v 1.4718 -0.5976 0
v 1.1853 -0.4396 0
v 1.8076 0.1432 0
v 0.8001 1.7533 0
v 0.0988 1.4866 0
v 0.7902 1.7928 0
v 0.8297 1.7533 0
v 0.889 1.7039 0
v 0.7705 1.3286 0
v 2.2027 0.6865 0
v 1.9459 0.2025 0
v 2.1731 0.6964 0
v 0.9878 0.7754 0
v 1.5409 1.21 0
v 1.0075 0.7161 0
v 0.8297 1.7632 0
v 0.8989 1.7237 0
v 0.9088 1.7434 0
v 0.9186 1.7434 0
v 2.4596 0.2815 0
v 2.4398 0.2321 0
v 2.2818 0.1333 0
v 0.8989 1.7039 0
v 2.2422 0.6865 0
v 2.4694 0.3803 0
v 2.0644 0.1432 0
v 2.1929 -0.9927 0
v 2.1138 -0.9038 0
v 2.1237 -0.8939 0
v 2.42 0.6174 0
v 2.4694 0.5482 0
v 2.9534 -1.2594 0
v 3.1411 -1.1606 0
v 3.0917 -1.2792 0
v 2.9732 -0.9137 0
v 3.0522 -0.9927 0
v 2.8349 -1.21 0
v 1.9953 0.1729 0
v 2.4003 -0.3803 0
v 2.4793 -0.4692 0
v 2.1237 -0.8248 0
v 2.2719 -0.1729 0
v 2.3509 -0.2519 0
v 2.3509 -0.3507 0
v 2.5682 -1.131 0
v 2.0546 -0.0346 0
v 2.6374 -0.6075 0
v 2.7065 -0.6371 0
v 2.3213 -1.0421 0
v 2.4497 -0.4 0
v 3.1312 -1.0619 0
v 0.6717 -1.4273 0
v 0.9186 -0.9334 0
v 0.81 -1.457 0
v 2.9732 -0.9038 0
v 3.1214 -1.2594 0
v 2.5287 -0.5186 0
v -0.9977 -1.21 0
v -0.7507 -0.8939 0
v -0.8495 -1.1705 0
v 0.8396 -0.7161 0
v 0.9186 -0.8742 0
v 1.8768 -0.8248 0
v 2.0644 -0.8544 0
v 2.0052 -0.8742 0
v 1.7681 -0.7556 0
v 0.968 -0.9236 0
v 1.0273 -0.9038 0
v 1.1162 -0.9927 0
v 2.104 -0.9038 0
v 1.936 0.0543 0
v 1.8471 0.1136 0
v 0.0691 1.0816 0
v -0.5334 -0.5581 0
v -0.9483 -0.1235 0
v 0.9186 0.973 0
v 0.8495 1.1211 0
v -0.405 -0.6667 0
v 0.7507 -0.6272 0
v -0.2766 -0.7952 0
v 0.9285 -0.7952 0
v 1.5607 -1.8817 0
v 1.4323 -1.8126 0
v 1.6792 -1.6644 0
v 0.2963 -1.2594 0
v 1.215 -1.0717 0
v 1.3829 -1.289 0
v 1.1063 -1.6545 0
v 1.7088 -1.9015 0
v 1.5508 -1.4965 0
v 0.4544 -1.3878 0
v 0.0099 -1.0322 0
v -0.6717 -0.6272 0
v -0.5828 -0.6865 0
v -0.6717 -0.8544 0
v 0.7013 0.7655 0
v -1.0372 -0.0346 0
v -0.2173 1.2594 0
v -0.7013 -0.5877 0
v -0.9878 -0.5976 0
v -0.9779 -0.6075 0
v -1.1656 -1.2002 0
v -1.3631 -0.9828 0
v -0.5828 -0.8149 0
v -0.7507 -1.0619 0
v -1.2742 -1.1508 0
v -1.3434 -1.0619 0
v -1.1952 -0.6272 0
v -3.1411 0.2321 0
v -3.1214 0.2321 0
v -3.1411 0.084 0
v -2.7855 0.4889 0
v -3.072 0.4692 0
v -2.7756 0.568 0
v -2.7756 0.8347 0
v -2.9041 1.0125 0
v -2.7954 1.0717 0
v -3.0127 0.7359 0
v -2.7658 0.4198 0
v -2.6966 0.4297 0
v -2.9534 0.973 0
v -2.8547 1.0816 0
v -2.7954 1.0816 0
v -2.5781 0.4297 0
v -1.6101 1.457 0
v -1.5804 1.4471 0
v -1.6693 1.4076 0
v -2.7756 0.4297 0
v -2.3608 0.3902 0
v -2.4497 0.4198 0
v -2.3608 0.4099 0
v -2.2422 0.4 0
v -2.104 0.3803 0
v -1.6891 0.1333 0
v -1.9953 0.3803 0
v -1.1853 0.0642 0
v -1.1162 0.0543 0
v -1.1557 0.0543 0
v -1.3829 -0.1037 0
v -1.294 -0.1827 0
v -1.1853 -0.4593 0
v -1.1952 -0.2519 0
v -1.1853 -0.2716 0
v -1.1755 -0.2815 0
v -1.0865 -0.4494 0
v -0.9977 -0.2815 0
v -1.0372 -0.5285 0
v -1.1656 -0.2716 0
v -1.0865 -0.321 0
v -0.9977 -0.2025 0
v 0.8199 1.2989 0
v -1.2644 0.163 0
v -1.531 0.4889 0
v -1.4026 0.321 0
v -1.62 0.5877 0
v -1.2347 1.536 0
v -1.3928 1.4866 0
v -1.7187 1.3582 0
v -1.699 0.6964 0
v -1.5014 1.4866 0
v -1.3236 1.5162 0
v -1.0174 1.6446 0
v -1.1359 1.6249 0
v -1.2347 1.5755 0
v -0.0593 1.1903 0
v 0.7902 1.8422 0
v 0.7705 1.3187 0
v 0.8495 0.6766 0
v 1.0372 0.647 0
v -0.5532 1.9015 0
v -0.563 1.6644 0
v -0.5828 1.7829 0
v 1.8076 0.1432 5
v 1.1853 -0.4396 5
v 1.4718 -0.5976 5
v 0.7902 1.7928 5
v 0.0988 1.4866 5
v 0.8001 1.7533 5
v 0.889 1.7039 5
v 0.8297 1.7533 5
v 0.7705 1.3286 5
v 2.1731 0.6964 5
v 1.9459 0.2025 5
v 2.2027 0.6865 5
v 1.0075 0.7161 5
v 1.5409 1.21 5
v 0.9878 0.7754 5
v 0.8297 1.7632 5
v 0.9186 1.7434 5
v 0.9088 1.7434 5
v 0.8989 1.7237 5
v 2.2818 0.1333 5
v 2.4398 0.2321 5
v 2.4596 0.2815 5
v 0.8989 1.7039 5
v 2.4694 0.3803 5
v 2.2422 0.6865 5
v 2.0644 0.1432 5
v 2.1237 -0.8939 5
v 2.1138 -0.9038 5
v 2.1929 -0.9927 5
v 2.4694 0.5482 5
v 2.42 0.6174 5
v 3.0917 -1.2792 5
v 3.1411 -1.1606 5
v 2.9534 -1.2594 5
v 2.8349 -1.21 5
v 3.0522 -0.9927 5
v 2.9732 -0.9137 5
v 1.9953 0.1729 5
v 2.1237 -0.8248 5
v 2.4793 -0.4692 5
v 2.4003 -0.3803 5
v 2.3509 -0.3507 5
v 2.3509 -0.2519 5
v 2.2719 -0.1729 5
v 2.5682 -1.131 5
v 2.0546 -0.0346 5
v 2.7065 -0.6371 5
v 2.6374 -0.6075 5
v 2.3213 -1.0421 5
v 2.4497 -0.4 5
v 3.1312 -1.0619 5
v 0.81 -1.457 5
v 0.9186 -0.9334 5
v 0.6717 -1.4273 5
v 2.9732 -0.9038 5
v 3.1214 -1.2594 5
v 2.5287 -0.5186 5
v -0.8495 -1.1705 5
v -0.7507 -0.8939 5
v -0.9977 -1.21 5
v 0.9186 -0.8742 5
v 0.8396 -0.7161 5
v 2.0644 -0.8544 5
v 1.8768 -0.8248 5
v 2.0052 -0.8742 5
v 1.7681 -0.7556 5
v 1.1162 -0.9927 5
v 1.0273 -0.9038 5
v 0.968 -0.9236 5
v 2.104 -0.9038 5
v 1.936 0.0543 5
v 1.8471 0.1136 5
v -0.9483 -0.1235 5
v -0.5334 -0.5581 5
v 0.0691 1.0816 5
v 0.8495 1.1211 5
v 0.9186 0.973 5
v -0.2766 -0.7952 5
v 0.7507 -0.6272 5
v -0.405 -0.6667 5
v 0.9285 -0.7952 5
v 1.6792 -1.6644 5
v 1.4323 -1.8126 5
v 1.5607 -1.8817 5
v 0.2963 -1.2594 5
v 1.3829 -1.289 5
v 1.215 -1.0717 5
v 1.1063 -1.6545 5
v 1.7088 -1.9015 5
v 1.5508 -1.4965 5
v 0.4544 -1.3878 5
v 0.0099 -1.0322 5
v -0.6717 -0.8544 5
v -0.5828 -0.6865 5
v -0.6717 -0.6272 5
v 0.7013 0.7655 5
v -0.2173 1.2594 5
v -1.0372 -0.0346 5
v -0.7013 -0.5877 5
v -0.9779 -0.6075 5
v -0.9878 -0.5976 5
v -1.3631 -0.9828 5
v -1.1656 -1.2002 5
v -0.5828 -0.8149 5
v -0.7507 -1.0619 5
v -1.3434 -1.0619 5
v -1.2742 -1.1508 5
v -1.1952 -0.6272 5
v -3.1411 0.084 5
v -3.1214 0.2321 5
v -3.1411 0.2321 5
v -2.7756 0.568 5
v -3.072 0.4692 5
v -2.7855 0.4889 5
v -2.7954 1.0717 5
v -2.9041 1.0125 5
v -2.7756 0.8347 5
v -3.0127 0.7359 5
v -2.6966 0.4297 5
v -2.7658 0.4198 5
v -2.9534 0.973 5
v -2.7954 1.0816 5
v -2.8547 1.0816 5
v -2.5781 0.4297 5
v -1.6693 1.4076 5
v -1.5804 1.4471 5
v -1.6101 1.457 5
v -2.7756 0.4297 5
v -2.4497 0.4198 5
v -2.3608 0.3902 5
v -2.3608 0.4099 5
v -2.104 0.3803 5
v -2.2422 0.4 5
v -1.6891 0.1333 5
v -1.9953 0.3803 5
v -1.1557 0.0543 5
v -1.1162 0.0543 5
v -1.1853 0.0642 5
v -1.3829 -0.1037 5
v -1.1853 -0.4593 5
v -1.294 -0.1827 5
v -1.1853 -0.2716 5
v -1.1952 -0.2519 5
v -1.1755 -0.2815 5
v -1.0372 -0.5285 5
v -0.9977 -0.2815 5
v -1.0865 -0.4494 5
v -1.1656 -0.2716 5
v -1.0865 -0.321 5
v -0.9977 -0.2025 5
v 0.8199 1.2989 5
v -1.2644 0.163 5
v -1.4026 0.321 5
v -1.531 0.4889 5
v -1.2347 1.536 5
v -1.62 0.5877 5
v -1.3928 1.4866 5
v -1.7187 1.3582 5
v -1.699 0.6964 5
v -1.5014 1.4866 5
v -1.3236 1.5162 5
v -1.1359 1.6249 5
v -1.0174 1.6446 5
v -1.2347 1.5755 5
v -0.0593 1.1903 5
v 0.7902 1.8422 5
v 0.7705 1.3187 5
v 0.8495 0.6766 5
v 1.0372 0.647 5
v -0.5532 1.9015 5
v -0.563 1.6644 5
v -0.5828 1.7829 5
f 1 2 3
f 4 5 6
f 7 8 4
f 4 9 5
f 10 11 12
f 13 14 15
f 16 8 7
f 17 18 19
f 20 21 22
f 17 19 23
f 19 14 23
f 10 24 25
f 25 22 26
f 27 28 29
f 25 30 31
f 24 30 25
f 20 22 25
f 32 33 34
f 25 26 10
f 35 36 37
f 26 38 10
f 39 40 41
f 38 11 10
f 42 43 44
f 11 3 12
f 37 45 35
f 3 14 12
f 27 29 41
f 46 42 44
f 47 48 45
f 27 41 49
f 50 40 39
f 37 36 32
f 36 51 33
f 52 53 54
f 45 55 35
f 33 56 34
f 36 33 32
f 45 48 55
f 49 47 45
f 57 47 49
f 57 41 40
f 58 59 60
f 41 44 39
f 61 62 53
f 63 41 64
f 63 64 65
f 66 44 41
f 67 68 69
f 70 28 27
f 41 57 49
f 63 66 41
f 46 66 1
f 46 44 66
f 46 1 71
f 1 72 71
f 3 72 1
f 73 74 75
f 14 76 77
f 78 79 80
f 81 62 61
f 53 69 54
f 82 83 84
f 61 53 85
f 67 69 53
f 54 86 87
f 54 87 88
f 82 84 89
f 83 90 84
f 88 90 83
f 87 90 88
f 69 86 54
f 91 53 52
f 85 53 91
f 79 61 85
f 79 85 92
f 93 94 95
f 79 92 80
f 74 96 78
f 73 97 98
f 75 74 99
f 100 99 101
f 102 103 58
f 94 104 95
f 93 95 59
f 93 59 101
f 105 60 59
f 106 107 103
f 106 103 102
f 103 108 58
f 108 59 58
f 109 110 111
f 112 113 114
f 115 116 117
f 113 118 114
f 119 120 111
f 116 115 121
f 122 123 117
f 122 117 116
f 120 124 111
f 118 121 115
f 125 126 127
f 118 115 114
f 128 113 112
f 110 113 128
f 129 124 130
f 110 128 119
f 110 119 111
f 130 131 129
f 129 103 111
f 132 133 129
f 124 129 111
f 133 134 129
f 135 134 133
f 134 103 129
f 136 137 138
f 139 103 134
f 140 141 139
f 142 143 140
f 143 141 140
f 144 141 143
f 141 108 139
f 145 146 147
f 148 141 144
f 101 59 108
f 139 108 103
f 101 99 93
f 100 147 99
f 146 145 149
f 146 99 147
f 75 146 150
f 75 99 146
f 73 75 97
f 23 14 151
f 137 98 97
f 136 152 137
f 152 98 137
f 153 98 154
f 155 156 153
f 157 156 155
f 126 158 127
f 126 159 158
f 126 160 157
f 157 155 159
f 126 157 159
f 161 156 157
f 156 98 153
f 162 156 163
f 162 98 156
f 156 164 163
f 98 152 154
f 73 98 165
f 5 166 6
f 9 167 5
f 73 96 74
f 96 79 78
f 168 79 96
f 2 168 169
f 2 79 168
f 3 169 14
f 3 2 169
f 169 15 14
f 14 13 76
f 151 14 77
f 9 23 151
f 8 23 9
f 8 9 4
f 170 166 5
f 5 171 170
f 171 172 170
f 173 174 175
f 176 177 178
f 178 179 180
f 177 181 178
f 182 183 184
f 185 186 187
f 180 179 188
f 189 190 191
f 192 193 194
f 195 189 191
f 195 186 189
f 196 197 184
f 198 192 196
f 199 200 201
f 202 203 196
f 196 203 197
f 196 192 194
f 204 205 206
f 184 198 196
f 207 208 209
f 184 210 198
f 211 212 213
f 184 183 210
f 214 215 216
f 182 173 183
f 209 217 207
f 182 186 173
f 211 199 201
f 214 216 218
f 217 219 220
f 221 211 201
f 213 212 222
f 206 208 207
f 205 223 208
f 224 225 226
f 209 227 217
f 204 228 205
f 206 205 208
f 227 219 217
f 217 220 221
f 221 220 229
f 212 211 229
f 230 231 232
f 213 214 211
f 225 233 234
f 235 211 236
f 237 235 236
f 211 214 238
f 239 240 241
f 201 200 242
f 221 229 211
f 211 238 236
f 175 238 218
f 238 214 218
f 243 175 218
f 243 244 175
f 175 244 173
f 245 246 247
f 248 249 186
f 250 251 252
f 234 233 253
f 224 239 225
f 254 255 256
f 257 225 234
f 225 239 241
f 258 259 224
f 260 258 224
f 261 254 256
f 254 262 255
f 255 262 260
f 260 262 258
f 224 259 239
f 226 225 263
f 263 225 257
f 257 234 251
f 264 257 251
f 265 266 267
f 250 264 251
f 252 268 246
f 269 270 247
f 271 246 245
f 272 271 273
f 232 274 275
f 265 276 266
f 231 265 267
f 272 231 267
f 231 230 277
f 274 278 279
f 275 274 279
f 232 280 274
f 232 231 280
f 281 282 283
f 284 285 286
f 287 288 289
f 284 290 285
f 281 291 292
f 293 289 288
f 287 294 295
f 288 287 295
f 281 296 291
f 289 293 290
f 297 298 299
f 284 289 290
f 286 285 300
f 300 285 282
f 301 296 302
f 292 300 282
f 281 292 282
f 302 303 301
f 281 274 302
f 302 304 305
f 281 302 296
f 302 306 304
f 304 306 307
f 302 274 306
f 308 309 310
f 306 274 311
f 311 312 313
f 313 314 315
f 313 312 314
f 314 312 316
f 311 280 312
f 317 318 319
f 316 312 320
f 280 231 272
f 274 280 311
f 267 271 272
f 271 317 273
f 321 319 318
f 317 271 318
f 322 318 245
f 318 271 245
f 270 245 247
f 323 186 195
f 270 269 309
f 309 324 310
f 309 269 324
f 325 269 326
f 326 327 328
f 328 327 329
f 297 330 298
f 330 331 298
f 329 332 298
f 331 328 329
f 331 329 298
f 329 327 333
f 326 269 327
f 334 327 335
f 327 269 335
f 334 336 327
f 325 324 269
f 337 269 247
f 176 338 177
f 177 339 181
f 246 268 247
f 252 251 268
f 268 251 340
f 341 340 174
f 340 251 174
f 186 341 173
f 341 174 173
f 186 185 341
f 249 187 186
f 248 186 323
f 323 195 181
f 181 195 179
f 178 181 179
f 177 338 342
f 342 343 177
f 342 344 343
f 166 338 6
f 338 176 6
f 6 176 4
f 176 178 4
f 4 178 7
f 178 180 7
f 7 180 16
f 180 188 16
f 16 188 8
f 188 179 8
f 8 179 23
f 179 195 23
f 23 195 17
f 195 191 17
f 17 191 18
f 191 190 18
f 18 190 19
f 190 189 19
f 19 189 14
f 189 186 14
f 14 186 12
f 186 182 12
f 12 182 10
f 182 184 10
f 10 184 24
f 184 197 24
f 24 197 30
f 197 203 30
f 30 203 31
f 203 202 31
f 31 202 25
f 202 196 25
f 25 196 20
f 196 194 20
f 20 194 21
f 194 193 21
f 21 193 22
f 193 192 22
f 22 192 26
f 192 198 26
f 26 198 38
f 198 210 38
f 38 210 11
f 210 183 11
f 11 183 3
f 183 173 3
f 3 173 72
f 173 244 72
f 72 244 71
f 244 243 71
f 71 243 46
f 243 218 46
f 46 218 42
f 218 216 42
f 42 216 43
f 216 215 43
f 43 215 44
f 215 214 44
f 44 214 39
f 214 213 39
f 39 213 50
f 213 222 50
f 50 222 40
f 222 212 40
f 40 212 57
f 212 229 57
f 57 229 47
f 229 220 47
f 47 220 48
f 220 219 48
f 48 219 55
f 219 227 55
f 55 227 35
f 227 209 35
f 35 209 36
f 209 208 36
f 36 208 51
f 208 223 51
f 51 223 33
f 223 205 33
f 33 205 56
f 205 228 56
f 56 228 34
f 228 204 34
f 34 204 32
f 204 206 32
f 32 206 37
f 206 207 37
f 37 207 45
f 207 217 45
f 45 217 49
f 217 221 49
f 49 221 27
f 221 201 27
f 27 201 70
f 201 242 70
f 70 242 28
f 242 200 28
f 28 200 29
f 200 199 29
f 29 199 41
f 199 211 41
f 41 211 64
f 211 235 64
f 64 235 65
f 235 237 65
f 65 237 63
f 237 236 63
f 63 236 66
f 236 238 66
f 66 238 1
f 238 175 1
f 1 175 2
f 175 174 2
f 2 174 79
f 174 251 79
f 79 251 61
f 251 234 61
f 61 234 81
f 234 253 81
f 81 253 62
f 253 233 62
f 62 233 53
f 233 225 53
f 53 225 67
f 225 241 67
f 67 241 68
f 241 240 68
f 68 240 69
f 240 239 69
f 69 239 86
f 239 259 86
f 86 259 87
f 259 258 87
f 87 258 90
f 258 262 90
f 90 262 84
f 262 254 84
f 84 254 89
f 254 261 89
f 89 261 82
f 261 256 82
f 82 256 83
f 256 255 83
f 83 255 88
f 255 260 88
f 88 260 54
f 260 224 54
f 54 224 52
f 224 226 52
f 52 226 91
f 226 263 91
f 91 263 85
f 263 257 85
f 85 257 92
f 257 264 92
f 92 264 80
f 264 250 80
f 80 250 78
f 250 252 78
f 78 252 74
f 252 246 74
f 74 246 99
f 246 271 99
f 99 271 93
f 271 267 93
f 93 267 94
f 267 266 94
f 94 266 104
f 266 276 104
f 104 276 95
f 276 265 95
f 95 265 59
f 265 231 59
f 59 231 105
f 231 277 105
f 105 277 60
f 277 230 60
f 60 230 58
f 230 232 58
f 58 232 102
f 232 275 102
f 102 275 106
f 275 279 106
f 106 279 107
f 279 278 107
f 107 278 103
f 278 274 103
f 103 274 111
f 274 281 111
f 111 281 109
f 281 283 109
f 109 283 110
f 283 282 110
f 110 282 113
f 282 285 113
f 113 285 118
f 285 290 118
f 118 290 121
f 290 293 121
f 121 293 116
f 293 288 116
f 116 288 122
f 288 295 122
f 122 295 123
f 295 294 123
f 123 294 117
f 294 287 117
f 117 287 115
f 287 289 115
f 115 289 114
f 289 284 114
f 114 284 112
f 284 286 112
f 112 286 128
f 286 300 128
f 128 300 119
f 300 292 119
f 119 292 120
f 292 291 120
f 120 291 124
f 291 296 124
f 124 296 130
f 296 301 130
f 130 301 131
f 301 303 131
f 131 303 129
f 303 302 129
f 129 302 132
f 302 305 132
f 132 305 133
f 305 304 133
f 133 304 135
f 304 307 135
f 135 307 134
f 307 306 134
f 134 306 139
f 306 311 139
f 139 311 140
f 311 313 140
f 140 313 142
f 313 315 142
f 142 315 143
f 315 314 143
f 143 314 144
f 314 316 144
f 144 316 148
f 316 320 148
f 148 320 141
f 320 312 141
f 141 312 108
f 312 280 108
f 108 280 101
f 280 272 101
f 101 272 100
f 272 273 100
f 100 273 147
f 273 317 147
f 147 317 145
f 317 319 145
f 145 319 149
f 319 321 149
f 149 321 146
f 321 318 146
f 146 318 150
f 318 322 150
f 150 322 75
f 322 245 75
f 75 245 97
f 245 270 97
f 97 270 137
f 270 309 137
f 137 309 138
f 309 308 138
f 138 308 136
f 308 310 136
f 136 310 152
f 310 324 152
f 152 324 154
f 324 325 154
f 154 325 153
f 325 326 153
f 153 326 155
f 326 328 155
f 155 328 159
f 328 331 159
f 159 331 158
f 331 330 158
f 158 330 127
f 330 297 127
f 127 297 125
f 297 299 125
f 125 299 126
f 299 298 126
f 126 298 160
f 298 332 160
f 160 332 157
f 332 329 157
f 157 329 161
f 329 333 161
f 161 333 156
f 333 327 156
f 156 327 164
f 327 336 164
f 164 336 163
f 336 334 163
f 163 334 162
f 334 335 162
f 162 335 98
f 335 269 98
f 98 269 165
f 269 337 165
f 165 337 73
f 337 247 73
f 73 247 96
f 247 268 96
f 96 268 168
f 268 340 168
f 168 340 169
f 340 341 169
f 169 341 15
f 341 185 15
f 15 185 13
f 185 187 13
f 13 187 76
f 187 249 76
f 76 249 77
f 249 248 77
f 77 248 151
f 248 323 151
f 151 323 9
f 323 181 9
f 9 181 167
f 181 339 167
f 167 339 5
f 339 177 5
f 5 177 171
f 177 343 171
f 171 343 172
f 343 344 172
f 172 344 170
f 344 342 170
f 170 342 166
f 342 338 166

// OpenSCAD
// Module names are of the form poly_<inkscape-path-id>().  As a result,
// you can associate a polygon in this OpenSCAD program with the corresponding
// SVG element in the Inkscape document by looking for the XML element with
// the attribute id="inkscape-path-id".

// fudge value is used to ensure that subtracted solids are a tad taller
// in the z dimension than the polygon being subtracted from.  This helps
// keep the resulting .stl file manifold.
fudge = 0.1;

module poly_path4243(h)
{
  scale([25.4/90, -25.4/90, 1]) union()
  {
    linear_extrude(height=h)
      polygon([[-1.960000,-6.737500],[0.420000,-6.632500],[2.800000,-6.527500],[2.800000,-6.352500],[2.835000,-6.212500],[2.940000,-6.212500],[2.940000,-6.247500],[3.150000,-6.037500],[3.185000,-6.037500],[3.185000,-6.107500],[3.220000,-6.177500],[3.255000,-6.177500],[5.460000,-4.287500],[7.700000,-2.467500],[7.805000,-2.432500],[7.945000,-2.432500],[8.575000,-2.187500],[8.750000,-1.942500],[8.750000,-1.697500],[8.750000,-1.347500],[8.715000,-0.997500],[8.645000,-0.822500],[8.085000,-0.472500],[7.315000,-0.507500],[7.070000,-0.612500],[6.895000,-0.717500],[6.405000,-0.507500],[6.545000,-0.402500],[6.860000,-0.192500],[7.280000,0.122500],[7.665000,0.367500],[8.050000,0.612500],[8.330000,0.892500],[8.330000,1.242500],[8.505000,1.347500],[8.680000,1.417500],[8.785000,1.662500],[8.960000,1.837500],[9.345000,2.152500],[9.590000,2.257500],[9.835000,2.502500],[10.080000,2.747500],[10.535000,3.202500],[10.535000,3.237500],[10.815000,3.517500],[11.095000,3.762500],[11.130000,4.112500],[11.060000,4.462500],[10.955000,4.532500],[10.465000,4.462500],[10.045000,4.287500],[9.100000,4.007500],[8.225000,3.692500],[7.770000,3.517500],[7.455000,3.202500],[7.490000,3.202500],[7.525000,3.167500],[7.525000,2.922500],[7.315000,3.027500],[7.105000,3.097500],[6.650000,2.922500],[6.265000,2.677500],[5.215000,2.117500],[4.200000,1.557500],[2.660000,2.222500],[2.975000,2.537500],[3.290000,2.817500],[3.255000,3.097500],[3.255000,3.307500],[3.430000,3.272500],[3.640000,3.202500],[3.955000,3.517500],[4.305000,3.797500],[4.900000,4.567500],[5.495000,5.302500],[5.950000,5.897500],[6.055000,6.737500],[5.530000,6.667500],[5.075000,6.422500],[3.920000,5.862500],[2.870000,5.162500],[2.380000,5.057500],[1.610000,4.917500],[1.050000,4.462500],[0.035000,3.657500],[-0.980000,2.817500],[-1.435000,2.362500],[-1.890000,1.977500],[-2.485000,2.082500],[-2.380000,2.222500],[-2.065000,2.432500],[-2.065000,2.887500],[-2.380000,3.027500],[-2.660000,3.167500],[-2.660000,3.762500],[-3.010000,4.147500],[-3.535000,4.287500],[-4.130000,4.252500],[-4.515000,4.077500],[-4.760000,3.762500],[-4.795000,3.622500],[-4.830000,3.482500],[-11.130000,-0.297500],[-11.130000,-0.822500],[-11.060000,-0.822500],[-10.885000,-1.662500],[-10.675000,-2.607500],[-10.465000,-3.447500],[-10.290000,-3.587500],[-10.115000,-3.832500],[-9.905000,-3.832500],[-9.905000,-3.797500],[-9.835000,-2.957500],[-9.835000,-2.012500],[-9.870000,-1.732500],[-9.835000,-1.522500],[-9.800000,-1.487500],[-9.555000,-1.522500],[-9.135000,-1.522500],[-8.680000,-1.487500],[-8.365000,-1.452500],[-8.365000,-1.382500],[-7.945000,-1.417500],[-7.455000,-1.347500],[-7.070000,-1.347500],[-5.985000,-0.472500],[-4.900000,0.367500],[-4.585000,0.647500],[-4.235000,0.892500],[-4.200000,0.962500],[-4.165000,0.997500],[-4.130000,0.962500],[-4.200000,1.627500],[-4.235000,2.222500],[-3.465000,2.152500],[-3.500000,2.117500],[-3.675000,1.872500],[-3.850000,1.592500],[-3.850000,1.137500],[-3.535000,0.997500],[-3.535000,0.717500],[-3.360000,0.437500],[-3.675000,0.122500],[-3.955000,-0.192500],[-4.095000,-0.192500],[-4.200000,-0.227500],[-4.340000,-0.402500],[-4.480000,-0.577500],[-4.970000,-1.137500],[-5.425000,-1.732500],[-5.740000,-2.082500],[-6.020000,-2.467500],[-6.055000,-3.622500],[-6.090000,-4.812500],[-5.915000,-4.987500],[-5.705000,-5.162500],[-5.600000,-5.127500],[-5.320000,-5.267500],[-4.935000,-5.267500],[-4.690000,-5.372500],[-4.375000,-5.442500],[-4.375000,-5.582500],[-4.025000,-5.757500],[-3.605000,-5.827500],[-0.770000,-4.462500],[-0.210000,-4.217500],[0.245000,-3.832500],[1.365000,-3.272500],[2.485000,-2.712500],[3.010000,-2.397500],[3.675000,-2.292500],[3.570000,-2.537500],[3.500000,-2.747500],[3.255000,-3.447500],[3.010000,-3.972500],[2.905000,-4.602500],[2.730000,-4.707500],[2.730000,-4.672500],[0.350000,-5.267500],[-1.995000,-5.897500],[-2.065000,-6.317500],[-1.960000,-6.737500]]);
  }
}

poly_path4243(5);
